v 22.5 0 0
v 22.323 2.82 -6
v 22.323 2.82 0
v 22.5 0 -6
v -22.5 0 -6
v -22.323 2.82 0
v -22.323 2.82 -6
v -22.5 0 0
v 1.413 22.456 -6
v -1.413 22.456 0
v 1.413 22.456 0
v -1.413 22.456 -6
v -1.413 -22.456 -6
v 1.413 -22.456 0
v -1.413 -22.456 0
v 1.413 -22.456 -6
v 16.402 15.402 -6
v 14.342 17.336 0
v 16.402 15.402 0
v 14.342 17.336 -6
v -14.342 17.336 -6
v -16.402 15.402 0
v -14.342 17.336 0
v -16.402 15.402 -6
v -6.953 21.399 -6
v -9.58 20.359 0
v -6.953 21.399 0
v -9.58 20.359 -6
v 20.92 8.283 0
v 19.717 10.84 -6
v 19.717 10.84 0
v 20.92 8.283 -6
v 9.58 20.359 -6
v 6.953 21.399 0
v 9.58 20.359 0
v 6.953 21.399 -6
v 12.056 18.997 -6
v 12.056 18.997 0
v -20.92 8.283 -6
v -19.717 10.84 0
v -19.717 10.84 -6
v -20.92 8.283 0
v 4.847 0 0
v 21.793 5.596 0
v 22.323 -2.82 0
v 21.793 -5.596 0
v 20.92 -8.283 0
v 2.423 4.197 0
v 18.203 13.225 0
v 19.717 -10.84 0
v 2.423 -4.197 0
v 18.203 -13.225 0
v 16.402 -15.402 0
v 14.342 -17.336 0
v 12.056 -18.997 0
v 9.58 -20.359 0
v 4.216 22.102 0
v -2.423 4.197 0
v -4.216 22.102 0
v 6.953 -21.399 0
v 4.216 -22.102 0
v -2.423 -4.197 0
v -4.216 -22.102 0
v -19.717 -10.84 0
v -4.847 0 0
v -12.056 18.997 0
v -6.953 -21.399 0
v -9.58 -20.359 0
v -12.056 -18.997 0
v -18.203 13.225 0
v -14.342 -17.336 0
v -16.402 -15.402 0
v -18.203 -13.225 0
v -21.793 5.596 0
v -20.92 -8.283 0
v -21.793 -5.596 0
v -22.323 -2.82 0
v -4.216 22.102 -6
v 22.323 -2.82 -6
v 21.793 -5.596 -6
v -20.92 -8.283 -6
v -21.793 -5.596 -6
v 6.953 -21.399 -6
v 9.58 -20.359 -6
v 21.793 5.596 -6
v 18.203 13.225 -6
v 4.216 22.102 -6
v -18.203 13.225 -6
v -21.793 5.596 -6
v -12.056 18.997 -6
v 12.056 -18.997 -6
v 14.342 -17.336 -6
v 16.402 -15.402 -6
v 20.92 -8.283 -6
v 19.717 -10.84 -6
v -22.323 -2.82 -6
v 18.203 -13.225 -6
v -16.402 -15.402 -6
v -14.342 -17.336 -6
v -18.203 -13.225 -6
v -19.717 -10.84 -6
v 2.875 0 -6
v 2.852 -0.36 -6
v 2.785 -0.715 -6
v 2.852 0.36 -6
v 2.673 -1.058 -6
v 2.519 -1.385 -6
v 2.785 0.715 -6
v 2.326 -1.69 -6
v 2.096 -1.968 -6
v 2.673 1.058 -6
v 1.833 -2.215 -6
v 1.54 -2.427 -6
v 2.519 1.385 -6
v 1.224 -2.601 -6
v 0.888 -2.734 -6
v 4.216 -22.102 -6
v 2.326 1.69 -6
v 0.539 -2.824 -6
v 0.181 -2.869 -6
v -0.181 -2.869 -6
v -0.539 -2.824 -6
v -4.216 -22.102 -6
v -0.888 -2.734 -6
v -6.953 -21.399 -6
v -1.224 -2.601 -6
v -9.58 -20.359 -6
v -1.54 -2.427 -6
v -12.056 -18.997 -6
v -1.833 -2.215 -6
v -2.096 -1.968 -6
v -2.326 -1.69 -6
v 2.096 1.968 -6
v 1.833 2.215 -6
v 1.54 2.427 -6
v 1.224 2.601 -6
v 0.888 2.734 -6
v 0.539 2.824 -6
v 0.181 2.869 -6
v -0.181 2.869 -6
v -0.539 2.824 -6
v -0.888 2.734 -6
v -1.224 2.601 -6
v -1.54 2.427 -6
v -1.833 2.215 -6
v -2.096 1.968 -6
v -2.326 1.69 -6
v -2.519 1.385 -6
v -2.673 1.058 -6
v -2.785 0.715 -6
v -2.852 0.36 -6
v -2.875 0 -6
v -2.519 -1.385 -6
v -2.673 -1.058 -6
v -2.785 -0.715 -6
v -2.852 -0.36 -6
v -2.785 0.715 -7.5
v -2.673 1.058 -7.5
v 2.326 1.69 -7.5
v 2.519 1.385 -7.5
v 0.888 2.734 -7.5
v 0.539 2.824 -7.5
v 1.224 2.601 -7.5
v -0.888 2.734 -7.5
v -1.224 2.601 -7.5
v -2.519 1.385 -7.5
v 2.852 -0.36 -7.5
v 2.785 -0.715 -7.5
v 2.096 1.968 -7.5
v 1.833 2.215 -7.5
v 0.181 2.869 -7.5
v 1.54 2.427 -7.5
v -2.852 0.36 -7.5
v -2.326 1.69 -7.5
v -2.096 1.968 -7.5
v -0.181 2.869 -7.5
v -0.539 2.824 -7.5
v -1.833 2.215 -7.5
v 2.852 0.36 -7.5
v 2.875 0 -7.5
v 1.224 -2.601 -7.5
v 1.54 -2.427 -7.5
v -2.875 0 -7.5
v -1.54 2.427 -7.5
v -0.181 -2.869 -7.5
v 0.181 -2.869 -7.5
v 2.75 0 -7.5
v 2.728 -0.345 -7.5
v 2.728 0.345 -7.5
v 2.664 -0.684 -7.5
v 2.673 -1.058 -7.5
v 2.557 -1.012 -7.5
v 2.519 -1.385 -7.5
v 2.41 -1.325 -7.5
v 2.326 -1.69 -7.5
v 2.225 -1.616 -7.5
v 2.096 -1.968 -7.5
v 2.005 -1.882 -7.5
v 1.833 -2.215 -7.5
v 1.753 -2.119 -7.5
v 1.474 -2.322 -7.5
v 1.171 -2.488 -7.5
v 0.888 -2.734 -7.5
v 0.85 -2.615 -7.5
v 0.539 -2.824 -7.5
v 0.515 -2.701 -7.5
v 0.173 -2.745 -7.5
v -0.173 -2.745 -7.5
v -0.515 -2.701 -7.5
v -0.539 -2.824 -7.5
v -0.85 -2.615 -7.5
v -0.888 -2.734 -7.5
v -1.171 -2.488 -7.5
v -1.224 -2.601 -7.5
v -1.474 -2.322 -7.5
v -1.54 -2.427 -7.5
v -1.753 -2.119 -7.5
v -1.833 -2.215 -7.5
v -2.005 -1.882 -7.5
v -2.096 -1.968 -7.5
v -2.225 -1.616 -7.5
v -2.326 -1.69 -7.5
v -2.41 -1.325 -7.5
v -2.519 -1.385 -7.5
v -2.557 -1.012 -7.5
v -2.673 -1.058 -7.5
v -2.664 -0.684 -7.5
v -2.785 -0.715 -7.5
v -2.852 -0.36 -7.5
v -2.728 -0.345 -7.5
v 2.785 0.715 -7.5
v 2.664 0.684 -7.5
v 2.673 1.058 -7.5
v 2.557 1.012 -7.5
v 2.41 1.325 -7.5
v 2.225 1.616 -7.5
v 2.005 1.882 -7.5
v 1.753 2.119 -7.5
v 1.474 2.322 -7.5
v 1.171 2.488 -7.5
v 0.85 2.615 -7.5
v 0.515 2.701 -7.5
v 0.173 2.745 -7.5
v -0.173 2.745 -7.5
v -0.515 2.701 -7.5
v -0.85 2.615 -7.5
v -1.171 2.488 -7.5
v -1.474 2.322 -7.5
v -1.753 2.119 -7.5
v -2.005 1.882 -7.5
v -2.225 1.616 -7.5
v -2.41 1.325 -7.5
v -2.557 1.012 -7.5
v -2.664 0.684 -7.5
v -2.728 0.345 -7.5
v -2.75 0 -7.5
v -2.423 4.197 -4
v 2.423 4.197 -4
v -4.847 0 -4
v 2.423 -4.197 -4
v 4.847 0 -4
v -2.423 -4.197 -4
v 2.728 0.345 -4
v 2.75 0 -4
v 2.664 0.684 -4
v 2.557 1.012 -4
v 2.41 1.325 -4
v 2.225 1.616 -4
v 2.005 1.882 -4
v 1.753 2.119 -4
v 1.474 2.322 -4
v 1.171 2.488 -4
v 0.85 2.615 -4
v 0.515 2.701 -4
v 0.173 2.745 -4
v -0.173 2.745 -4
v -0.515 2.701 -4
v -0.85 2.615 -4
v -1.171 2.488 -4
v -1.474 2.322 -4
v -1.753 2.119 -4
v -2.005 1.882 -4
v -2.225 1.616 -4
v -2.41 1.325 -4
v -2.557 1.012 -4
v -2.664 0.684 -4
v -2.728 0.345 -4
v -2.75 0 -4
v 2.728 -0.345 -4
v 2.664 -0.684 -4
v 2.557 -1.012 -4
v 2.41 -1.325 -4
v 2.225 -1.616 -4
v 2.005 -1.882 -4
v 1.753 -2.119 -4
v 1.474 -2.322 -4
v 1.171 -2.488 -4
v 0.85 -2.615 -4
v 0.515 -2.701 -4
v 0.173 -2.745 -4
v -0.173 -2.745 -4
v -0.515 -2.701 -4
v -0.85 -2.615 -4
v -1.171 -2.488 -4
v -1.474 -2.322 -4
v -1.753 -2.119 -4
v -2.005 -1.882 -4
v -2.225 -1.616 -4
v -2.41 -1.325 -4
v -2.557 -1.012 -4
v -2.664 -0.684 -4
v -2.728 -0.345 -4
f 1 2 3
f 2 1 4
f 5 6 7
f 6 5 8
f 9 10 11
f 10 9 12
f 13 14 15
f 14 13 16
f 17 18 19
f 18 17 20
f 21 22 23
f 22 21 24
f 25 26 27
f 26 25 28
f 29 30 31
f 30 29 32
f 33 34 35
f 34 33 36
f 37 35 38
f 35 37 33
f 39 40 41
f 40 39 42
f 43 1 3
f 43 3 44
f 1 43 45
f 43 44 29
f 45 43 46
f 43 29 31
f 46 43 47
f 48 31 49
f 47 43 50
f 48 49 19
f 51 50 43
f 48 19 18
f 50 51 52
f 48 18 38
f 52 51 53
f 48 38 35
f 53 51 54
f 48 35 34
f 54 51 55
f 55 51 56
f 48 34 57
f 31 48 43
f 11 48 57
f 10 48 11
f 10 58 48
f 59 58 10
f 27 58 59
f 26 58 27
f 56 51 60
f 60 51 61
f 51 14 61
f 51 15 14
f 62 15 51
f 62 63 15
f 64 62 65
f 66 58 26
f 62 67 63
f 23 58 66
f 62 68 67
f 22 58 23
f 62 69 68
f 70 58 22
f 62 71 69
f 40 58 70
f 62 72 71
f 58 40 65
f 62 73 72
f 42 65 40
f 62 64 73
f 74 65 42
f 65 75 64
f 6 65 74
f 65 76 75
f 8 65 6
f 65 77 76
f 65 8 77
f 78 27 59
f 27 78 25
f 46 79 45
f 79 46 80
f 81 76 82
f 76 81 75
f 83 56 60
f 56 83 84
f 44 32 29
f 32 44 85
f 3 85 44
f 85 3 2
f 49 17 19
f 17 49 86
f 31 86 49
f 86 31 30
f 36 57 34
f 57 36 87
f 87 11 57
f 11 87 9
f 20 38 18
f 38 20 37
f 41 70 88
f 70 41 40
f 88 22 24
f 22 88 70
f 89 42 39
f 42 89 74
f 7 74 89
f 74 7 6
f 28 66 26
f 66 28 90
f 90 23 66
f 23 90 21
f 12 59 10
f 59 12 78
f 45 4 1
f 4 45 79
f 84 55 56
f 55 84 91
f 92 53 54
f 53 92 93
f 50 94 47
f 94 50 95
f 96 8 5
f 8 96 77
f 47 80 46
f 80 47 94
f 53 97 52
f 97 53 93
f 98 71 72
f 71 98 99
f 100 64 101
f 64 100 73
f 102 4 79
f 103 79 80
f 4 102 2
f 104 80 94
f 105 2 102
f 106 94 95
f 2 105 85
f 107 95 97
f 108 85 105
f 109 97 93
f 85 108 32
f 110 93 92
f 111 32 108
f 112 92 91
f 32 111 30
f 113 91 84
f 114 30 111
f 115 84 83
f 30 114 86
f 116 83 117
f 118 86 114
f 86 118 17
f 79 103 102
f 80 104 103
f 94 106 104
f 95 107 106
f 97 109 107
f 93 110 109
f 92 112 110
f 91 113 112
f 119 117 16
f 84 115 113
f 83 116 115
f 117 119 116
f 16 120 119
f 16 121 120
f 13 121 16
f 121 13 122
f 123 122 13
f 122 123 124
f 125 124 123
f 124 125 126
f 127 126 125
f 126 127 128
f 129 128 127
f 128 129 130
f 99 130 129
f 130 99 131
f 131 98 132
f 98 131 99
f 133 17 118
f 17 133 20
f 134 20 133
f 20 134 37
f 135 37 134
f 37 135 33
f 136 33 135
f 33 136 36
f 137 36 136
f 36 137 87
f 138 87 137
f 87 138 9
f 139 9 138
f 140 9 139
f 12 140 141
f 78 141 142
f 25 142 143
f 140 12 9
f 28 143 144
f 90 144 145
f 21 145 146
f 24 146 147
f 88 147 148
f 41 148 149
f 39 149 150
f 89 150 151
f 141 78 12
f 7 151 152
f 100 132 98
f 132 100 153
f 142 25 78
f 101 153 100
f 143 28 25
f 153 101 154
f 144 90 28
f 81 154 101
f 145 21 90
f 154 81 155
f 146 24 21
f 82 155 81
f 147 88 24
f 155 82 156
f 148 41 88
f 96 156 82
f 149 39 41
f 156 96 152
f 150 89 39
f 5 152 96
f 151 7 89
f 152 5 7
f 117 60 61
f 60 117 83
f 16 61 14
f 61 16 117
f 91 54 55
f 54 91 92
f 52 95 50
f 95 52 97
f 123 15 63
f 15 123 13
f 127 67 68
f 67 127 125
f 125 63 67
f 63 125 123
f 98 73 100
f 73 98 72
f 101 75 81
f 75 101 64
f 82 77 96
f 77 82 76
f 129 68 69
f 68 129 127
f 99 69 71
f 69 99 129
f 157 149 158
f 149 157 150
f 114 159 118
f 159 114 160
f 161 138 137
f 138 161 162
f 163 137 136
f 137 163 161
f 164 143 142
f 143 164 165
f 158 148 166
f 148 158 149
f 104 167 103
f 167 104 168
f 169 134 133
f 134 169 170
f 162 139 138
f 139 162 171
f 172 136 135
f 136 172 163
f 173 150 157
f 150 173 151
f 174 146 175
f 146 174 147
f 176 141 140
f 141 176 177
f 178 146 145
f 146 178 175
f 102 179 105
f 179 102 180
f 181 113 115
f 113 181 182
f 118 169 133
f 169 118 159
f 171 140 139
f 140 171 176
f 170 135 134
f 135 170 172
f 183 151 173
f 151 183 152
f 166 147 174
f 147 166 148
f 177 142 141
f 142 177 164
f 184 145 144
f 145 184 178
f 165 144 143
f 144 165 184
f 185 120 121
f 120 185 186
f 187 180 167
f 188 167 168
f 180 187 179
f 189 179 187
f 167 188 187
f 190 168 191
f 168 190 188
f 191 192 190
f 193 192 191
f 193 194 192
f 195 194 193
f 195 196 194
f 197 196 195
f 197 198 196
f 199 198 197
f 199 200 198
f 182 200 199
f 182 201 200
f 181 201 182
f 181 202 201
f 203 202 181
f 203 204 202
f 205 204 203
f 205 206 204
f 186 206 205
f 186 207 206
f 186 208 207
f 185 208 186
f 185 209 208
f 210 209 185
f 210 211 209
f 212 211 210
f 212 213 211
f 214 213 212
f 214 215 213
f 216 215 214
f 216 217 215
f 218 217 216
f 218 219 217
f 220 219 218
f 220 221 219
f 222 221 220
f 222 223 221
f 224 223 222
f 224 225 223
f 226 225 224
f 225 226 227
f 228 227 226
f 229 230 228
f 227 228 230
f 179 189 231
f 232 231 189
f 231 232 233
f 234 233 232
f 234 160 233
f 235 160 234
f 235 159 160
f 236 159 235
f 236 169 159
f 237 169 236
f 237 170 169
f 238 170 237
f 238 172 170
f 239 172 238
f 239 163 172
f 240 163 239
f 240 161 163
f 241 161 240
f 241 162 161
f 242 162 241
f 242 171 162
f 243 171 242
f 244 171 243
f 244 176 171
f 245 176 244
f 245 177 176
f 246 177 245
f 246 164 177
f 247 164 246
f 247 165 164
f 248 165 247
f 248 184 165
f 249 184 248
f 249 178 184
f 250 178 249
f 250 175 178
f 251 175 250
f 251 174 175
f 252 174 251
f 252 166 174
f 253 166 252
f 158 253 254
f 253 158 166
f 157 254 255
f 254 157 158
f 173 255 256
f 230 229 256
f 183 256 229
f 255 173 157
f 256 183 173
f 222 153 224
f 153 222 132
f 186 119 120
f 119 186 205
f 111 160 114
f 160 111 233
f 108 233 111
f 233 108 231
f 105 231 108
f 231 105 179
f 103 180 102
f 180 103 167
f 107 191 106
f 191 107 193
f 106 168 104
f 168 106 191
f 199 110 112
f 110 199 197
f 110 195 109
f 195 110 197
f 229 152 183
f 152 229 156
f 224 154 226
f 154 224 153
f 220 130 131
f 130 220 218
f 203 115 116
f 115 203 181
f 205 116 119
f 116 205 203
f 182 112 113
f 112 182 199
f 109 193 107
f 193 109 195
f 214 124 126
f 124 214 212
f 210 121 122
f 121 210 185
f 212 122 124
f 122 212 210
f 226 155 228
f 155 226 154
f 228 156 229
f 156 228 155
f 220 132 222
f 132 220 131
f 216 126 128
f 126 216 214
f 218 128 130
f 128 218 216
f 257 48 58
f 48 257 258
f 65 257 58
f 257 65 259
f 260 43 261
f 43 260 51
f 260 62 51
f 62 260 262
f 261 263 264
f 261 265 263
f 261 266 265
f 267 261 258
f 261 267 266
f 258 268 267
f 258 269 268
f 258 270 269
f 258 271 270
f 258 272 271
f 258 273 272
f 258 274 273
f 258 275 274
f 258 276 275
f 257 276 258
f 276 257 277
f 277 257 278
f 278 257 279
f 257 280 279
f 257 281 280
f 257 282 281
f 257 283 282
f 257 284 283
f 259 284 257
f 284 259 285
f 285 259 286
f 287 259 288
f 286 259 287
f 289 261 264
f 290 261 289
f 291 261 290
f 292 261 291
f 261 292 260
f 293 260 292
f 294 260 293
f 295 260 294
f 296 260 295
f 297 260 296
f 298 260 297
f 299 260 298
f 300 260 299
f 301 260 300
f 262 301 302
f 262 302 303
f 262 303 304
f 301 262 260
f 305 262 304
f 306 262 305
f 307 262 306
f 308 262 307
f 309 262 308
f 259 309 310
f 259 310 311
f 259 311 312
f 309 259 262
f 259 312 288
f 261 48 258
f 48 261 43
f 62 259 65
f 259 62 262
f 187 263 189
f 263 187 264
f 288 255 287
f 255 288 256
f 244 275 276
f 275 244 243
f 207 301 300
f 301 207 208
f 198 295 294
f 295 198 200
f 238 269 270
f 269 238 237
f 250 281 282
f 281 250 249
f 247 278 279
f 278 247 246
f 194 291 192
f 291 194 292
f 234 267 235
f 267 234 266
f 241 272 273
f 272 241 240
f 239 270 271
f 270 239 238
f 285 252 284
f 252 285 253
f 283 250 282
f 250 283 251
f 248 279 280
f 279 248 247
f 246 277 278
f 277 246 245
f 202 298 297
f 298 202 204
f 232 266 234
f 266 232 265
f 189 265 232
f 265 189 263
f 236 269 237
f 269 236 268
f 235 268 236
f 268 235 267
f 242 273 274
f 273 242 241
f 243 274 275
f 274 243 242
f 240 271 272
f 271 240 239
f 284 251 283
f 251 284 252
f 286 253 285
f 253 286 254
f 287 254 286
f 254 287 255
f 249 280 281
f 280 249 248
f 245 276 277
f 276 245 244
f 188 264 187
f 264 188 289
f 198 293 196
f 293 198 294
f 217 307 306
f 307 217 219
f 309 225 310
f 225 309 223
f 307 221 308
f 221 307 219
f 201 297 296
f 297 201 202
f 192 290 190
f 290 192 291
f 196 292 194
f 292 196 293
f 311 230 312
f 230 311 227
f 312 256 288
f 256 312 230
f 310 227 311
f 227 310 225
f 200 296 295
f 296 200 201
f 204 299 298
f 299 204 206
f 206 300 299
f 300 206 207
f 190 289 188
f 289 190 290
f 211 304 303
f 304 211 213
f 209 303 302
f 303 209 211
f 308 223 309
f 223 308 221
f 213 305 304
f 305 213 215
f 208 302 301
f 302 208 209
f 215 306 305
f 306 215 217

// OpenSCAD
$fn = 50;


difference() {
	union() {
		translate(v = [0, 0, -6.0000000000]) {
			cylinder(h = 6.0000000000, r = 22.5000000000);
		}
		#translate(v = [0, 0, -7.5000000000]) {
			cylinder(h = 7.5000000000, r = 2.8750000000);
		}
	}
	union() {
		translate(v = [0, 0, 0]) {
			rotate(a = [0, 0, 0]) {
				difference() {
					union() {
						translate(v = [0, 0, -4]) {
							linear_extrude(height = 4) {
								polygon(points = [[4.8468000000, 0.0000000000], [2.4234000000, 4.1974519271], [-2.4234000000, 4.1974519271], [-4.8468000000, 0.0000000000], [-2.4234000000, -4.1974519271], [2.4234000000, -4.1974519271]]);
							}
						}
					}
					union();
				}
			}
		}
		#translate(v = [0, 0, -100.0000000000]) {
			cylinder(h = 200, r = 2.7500000000);
		}
	}
}
